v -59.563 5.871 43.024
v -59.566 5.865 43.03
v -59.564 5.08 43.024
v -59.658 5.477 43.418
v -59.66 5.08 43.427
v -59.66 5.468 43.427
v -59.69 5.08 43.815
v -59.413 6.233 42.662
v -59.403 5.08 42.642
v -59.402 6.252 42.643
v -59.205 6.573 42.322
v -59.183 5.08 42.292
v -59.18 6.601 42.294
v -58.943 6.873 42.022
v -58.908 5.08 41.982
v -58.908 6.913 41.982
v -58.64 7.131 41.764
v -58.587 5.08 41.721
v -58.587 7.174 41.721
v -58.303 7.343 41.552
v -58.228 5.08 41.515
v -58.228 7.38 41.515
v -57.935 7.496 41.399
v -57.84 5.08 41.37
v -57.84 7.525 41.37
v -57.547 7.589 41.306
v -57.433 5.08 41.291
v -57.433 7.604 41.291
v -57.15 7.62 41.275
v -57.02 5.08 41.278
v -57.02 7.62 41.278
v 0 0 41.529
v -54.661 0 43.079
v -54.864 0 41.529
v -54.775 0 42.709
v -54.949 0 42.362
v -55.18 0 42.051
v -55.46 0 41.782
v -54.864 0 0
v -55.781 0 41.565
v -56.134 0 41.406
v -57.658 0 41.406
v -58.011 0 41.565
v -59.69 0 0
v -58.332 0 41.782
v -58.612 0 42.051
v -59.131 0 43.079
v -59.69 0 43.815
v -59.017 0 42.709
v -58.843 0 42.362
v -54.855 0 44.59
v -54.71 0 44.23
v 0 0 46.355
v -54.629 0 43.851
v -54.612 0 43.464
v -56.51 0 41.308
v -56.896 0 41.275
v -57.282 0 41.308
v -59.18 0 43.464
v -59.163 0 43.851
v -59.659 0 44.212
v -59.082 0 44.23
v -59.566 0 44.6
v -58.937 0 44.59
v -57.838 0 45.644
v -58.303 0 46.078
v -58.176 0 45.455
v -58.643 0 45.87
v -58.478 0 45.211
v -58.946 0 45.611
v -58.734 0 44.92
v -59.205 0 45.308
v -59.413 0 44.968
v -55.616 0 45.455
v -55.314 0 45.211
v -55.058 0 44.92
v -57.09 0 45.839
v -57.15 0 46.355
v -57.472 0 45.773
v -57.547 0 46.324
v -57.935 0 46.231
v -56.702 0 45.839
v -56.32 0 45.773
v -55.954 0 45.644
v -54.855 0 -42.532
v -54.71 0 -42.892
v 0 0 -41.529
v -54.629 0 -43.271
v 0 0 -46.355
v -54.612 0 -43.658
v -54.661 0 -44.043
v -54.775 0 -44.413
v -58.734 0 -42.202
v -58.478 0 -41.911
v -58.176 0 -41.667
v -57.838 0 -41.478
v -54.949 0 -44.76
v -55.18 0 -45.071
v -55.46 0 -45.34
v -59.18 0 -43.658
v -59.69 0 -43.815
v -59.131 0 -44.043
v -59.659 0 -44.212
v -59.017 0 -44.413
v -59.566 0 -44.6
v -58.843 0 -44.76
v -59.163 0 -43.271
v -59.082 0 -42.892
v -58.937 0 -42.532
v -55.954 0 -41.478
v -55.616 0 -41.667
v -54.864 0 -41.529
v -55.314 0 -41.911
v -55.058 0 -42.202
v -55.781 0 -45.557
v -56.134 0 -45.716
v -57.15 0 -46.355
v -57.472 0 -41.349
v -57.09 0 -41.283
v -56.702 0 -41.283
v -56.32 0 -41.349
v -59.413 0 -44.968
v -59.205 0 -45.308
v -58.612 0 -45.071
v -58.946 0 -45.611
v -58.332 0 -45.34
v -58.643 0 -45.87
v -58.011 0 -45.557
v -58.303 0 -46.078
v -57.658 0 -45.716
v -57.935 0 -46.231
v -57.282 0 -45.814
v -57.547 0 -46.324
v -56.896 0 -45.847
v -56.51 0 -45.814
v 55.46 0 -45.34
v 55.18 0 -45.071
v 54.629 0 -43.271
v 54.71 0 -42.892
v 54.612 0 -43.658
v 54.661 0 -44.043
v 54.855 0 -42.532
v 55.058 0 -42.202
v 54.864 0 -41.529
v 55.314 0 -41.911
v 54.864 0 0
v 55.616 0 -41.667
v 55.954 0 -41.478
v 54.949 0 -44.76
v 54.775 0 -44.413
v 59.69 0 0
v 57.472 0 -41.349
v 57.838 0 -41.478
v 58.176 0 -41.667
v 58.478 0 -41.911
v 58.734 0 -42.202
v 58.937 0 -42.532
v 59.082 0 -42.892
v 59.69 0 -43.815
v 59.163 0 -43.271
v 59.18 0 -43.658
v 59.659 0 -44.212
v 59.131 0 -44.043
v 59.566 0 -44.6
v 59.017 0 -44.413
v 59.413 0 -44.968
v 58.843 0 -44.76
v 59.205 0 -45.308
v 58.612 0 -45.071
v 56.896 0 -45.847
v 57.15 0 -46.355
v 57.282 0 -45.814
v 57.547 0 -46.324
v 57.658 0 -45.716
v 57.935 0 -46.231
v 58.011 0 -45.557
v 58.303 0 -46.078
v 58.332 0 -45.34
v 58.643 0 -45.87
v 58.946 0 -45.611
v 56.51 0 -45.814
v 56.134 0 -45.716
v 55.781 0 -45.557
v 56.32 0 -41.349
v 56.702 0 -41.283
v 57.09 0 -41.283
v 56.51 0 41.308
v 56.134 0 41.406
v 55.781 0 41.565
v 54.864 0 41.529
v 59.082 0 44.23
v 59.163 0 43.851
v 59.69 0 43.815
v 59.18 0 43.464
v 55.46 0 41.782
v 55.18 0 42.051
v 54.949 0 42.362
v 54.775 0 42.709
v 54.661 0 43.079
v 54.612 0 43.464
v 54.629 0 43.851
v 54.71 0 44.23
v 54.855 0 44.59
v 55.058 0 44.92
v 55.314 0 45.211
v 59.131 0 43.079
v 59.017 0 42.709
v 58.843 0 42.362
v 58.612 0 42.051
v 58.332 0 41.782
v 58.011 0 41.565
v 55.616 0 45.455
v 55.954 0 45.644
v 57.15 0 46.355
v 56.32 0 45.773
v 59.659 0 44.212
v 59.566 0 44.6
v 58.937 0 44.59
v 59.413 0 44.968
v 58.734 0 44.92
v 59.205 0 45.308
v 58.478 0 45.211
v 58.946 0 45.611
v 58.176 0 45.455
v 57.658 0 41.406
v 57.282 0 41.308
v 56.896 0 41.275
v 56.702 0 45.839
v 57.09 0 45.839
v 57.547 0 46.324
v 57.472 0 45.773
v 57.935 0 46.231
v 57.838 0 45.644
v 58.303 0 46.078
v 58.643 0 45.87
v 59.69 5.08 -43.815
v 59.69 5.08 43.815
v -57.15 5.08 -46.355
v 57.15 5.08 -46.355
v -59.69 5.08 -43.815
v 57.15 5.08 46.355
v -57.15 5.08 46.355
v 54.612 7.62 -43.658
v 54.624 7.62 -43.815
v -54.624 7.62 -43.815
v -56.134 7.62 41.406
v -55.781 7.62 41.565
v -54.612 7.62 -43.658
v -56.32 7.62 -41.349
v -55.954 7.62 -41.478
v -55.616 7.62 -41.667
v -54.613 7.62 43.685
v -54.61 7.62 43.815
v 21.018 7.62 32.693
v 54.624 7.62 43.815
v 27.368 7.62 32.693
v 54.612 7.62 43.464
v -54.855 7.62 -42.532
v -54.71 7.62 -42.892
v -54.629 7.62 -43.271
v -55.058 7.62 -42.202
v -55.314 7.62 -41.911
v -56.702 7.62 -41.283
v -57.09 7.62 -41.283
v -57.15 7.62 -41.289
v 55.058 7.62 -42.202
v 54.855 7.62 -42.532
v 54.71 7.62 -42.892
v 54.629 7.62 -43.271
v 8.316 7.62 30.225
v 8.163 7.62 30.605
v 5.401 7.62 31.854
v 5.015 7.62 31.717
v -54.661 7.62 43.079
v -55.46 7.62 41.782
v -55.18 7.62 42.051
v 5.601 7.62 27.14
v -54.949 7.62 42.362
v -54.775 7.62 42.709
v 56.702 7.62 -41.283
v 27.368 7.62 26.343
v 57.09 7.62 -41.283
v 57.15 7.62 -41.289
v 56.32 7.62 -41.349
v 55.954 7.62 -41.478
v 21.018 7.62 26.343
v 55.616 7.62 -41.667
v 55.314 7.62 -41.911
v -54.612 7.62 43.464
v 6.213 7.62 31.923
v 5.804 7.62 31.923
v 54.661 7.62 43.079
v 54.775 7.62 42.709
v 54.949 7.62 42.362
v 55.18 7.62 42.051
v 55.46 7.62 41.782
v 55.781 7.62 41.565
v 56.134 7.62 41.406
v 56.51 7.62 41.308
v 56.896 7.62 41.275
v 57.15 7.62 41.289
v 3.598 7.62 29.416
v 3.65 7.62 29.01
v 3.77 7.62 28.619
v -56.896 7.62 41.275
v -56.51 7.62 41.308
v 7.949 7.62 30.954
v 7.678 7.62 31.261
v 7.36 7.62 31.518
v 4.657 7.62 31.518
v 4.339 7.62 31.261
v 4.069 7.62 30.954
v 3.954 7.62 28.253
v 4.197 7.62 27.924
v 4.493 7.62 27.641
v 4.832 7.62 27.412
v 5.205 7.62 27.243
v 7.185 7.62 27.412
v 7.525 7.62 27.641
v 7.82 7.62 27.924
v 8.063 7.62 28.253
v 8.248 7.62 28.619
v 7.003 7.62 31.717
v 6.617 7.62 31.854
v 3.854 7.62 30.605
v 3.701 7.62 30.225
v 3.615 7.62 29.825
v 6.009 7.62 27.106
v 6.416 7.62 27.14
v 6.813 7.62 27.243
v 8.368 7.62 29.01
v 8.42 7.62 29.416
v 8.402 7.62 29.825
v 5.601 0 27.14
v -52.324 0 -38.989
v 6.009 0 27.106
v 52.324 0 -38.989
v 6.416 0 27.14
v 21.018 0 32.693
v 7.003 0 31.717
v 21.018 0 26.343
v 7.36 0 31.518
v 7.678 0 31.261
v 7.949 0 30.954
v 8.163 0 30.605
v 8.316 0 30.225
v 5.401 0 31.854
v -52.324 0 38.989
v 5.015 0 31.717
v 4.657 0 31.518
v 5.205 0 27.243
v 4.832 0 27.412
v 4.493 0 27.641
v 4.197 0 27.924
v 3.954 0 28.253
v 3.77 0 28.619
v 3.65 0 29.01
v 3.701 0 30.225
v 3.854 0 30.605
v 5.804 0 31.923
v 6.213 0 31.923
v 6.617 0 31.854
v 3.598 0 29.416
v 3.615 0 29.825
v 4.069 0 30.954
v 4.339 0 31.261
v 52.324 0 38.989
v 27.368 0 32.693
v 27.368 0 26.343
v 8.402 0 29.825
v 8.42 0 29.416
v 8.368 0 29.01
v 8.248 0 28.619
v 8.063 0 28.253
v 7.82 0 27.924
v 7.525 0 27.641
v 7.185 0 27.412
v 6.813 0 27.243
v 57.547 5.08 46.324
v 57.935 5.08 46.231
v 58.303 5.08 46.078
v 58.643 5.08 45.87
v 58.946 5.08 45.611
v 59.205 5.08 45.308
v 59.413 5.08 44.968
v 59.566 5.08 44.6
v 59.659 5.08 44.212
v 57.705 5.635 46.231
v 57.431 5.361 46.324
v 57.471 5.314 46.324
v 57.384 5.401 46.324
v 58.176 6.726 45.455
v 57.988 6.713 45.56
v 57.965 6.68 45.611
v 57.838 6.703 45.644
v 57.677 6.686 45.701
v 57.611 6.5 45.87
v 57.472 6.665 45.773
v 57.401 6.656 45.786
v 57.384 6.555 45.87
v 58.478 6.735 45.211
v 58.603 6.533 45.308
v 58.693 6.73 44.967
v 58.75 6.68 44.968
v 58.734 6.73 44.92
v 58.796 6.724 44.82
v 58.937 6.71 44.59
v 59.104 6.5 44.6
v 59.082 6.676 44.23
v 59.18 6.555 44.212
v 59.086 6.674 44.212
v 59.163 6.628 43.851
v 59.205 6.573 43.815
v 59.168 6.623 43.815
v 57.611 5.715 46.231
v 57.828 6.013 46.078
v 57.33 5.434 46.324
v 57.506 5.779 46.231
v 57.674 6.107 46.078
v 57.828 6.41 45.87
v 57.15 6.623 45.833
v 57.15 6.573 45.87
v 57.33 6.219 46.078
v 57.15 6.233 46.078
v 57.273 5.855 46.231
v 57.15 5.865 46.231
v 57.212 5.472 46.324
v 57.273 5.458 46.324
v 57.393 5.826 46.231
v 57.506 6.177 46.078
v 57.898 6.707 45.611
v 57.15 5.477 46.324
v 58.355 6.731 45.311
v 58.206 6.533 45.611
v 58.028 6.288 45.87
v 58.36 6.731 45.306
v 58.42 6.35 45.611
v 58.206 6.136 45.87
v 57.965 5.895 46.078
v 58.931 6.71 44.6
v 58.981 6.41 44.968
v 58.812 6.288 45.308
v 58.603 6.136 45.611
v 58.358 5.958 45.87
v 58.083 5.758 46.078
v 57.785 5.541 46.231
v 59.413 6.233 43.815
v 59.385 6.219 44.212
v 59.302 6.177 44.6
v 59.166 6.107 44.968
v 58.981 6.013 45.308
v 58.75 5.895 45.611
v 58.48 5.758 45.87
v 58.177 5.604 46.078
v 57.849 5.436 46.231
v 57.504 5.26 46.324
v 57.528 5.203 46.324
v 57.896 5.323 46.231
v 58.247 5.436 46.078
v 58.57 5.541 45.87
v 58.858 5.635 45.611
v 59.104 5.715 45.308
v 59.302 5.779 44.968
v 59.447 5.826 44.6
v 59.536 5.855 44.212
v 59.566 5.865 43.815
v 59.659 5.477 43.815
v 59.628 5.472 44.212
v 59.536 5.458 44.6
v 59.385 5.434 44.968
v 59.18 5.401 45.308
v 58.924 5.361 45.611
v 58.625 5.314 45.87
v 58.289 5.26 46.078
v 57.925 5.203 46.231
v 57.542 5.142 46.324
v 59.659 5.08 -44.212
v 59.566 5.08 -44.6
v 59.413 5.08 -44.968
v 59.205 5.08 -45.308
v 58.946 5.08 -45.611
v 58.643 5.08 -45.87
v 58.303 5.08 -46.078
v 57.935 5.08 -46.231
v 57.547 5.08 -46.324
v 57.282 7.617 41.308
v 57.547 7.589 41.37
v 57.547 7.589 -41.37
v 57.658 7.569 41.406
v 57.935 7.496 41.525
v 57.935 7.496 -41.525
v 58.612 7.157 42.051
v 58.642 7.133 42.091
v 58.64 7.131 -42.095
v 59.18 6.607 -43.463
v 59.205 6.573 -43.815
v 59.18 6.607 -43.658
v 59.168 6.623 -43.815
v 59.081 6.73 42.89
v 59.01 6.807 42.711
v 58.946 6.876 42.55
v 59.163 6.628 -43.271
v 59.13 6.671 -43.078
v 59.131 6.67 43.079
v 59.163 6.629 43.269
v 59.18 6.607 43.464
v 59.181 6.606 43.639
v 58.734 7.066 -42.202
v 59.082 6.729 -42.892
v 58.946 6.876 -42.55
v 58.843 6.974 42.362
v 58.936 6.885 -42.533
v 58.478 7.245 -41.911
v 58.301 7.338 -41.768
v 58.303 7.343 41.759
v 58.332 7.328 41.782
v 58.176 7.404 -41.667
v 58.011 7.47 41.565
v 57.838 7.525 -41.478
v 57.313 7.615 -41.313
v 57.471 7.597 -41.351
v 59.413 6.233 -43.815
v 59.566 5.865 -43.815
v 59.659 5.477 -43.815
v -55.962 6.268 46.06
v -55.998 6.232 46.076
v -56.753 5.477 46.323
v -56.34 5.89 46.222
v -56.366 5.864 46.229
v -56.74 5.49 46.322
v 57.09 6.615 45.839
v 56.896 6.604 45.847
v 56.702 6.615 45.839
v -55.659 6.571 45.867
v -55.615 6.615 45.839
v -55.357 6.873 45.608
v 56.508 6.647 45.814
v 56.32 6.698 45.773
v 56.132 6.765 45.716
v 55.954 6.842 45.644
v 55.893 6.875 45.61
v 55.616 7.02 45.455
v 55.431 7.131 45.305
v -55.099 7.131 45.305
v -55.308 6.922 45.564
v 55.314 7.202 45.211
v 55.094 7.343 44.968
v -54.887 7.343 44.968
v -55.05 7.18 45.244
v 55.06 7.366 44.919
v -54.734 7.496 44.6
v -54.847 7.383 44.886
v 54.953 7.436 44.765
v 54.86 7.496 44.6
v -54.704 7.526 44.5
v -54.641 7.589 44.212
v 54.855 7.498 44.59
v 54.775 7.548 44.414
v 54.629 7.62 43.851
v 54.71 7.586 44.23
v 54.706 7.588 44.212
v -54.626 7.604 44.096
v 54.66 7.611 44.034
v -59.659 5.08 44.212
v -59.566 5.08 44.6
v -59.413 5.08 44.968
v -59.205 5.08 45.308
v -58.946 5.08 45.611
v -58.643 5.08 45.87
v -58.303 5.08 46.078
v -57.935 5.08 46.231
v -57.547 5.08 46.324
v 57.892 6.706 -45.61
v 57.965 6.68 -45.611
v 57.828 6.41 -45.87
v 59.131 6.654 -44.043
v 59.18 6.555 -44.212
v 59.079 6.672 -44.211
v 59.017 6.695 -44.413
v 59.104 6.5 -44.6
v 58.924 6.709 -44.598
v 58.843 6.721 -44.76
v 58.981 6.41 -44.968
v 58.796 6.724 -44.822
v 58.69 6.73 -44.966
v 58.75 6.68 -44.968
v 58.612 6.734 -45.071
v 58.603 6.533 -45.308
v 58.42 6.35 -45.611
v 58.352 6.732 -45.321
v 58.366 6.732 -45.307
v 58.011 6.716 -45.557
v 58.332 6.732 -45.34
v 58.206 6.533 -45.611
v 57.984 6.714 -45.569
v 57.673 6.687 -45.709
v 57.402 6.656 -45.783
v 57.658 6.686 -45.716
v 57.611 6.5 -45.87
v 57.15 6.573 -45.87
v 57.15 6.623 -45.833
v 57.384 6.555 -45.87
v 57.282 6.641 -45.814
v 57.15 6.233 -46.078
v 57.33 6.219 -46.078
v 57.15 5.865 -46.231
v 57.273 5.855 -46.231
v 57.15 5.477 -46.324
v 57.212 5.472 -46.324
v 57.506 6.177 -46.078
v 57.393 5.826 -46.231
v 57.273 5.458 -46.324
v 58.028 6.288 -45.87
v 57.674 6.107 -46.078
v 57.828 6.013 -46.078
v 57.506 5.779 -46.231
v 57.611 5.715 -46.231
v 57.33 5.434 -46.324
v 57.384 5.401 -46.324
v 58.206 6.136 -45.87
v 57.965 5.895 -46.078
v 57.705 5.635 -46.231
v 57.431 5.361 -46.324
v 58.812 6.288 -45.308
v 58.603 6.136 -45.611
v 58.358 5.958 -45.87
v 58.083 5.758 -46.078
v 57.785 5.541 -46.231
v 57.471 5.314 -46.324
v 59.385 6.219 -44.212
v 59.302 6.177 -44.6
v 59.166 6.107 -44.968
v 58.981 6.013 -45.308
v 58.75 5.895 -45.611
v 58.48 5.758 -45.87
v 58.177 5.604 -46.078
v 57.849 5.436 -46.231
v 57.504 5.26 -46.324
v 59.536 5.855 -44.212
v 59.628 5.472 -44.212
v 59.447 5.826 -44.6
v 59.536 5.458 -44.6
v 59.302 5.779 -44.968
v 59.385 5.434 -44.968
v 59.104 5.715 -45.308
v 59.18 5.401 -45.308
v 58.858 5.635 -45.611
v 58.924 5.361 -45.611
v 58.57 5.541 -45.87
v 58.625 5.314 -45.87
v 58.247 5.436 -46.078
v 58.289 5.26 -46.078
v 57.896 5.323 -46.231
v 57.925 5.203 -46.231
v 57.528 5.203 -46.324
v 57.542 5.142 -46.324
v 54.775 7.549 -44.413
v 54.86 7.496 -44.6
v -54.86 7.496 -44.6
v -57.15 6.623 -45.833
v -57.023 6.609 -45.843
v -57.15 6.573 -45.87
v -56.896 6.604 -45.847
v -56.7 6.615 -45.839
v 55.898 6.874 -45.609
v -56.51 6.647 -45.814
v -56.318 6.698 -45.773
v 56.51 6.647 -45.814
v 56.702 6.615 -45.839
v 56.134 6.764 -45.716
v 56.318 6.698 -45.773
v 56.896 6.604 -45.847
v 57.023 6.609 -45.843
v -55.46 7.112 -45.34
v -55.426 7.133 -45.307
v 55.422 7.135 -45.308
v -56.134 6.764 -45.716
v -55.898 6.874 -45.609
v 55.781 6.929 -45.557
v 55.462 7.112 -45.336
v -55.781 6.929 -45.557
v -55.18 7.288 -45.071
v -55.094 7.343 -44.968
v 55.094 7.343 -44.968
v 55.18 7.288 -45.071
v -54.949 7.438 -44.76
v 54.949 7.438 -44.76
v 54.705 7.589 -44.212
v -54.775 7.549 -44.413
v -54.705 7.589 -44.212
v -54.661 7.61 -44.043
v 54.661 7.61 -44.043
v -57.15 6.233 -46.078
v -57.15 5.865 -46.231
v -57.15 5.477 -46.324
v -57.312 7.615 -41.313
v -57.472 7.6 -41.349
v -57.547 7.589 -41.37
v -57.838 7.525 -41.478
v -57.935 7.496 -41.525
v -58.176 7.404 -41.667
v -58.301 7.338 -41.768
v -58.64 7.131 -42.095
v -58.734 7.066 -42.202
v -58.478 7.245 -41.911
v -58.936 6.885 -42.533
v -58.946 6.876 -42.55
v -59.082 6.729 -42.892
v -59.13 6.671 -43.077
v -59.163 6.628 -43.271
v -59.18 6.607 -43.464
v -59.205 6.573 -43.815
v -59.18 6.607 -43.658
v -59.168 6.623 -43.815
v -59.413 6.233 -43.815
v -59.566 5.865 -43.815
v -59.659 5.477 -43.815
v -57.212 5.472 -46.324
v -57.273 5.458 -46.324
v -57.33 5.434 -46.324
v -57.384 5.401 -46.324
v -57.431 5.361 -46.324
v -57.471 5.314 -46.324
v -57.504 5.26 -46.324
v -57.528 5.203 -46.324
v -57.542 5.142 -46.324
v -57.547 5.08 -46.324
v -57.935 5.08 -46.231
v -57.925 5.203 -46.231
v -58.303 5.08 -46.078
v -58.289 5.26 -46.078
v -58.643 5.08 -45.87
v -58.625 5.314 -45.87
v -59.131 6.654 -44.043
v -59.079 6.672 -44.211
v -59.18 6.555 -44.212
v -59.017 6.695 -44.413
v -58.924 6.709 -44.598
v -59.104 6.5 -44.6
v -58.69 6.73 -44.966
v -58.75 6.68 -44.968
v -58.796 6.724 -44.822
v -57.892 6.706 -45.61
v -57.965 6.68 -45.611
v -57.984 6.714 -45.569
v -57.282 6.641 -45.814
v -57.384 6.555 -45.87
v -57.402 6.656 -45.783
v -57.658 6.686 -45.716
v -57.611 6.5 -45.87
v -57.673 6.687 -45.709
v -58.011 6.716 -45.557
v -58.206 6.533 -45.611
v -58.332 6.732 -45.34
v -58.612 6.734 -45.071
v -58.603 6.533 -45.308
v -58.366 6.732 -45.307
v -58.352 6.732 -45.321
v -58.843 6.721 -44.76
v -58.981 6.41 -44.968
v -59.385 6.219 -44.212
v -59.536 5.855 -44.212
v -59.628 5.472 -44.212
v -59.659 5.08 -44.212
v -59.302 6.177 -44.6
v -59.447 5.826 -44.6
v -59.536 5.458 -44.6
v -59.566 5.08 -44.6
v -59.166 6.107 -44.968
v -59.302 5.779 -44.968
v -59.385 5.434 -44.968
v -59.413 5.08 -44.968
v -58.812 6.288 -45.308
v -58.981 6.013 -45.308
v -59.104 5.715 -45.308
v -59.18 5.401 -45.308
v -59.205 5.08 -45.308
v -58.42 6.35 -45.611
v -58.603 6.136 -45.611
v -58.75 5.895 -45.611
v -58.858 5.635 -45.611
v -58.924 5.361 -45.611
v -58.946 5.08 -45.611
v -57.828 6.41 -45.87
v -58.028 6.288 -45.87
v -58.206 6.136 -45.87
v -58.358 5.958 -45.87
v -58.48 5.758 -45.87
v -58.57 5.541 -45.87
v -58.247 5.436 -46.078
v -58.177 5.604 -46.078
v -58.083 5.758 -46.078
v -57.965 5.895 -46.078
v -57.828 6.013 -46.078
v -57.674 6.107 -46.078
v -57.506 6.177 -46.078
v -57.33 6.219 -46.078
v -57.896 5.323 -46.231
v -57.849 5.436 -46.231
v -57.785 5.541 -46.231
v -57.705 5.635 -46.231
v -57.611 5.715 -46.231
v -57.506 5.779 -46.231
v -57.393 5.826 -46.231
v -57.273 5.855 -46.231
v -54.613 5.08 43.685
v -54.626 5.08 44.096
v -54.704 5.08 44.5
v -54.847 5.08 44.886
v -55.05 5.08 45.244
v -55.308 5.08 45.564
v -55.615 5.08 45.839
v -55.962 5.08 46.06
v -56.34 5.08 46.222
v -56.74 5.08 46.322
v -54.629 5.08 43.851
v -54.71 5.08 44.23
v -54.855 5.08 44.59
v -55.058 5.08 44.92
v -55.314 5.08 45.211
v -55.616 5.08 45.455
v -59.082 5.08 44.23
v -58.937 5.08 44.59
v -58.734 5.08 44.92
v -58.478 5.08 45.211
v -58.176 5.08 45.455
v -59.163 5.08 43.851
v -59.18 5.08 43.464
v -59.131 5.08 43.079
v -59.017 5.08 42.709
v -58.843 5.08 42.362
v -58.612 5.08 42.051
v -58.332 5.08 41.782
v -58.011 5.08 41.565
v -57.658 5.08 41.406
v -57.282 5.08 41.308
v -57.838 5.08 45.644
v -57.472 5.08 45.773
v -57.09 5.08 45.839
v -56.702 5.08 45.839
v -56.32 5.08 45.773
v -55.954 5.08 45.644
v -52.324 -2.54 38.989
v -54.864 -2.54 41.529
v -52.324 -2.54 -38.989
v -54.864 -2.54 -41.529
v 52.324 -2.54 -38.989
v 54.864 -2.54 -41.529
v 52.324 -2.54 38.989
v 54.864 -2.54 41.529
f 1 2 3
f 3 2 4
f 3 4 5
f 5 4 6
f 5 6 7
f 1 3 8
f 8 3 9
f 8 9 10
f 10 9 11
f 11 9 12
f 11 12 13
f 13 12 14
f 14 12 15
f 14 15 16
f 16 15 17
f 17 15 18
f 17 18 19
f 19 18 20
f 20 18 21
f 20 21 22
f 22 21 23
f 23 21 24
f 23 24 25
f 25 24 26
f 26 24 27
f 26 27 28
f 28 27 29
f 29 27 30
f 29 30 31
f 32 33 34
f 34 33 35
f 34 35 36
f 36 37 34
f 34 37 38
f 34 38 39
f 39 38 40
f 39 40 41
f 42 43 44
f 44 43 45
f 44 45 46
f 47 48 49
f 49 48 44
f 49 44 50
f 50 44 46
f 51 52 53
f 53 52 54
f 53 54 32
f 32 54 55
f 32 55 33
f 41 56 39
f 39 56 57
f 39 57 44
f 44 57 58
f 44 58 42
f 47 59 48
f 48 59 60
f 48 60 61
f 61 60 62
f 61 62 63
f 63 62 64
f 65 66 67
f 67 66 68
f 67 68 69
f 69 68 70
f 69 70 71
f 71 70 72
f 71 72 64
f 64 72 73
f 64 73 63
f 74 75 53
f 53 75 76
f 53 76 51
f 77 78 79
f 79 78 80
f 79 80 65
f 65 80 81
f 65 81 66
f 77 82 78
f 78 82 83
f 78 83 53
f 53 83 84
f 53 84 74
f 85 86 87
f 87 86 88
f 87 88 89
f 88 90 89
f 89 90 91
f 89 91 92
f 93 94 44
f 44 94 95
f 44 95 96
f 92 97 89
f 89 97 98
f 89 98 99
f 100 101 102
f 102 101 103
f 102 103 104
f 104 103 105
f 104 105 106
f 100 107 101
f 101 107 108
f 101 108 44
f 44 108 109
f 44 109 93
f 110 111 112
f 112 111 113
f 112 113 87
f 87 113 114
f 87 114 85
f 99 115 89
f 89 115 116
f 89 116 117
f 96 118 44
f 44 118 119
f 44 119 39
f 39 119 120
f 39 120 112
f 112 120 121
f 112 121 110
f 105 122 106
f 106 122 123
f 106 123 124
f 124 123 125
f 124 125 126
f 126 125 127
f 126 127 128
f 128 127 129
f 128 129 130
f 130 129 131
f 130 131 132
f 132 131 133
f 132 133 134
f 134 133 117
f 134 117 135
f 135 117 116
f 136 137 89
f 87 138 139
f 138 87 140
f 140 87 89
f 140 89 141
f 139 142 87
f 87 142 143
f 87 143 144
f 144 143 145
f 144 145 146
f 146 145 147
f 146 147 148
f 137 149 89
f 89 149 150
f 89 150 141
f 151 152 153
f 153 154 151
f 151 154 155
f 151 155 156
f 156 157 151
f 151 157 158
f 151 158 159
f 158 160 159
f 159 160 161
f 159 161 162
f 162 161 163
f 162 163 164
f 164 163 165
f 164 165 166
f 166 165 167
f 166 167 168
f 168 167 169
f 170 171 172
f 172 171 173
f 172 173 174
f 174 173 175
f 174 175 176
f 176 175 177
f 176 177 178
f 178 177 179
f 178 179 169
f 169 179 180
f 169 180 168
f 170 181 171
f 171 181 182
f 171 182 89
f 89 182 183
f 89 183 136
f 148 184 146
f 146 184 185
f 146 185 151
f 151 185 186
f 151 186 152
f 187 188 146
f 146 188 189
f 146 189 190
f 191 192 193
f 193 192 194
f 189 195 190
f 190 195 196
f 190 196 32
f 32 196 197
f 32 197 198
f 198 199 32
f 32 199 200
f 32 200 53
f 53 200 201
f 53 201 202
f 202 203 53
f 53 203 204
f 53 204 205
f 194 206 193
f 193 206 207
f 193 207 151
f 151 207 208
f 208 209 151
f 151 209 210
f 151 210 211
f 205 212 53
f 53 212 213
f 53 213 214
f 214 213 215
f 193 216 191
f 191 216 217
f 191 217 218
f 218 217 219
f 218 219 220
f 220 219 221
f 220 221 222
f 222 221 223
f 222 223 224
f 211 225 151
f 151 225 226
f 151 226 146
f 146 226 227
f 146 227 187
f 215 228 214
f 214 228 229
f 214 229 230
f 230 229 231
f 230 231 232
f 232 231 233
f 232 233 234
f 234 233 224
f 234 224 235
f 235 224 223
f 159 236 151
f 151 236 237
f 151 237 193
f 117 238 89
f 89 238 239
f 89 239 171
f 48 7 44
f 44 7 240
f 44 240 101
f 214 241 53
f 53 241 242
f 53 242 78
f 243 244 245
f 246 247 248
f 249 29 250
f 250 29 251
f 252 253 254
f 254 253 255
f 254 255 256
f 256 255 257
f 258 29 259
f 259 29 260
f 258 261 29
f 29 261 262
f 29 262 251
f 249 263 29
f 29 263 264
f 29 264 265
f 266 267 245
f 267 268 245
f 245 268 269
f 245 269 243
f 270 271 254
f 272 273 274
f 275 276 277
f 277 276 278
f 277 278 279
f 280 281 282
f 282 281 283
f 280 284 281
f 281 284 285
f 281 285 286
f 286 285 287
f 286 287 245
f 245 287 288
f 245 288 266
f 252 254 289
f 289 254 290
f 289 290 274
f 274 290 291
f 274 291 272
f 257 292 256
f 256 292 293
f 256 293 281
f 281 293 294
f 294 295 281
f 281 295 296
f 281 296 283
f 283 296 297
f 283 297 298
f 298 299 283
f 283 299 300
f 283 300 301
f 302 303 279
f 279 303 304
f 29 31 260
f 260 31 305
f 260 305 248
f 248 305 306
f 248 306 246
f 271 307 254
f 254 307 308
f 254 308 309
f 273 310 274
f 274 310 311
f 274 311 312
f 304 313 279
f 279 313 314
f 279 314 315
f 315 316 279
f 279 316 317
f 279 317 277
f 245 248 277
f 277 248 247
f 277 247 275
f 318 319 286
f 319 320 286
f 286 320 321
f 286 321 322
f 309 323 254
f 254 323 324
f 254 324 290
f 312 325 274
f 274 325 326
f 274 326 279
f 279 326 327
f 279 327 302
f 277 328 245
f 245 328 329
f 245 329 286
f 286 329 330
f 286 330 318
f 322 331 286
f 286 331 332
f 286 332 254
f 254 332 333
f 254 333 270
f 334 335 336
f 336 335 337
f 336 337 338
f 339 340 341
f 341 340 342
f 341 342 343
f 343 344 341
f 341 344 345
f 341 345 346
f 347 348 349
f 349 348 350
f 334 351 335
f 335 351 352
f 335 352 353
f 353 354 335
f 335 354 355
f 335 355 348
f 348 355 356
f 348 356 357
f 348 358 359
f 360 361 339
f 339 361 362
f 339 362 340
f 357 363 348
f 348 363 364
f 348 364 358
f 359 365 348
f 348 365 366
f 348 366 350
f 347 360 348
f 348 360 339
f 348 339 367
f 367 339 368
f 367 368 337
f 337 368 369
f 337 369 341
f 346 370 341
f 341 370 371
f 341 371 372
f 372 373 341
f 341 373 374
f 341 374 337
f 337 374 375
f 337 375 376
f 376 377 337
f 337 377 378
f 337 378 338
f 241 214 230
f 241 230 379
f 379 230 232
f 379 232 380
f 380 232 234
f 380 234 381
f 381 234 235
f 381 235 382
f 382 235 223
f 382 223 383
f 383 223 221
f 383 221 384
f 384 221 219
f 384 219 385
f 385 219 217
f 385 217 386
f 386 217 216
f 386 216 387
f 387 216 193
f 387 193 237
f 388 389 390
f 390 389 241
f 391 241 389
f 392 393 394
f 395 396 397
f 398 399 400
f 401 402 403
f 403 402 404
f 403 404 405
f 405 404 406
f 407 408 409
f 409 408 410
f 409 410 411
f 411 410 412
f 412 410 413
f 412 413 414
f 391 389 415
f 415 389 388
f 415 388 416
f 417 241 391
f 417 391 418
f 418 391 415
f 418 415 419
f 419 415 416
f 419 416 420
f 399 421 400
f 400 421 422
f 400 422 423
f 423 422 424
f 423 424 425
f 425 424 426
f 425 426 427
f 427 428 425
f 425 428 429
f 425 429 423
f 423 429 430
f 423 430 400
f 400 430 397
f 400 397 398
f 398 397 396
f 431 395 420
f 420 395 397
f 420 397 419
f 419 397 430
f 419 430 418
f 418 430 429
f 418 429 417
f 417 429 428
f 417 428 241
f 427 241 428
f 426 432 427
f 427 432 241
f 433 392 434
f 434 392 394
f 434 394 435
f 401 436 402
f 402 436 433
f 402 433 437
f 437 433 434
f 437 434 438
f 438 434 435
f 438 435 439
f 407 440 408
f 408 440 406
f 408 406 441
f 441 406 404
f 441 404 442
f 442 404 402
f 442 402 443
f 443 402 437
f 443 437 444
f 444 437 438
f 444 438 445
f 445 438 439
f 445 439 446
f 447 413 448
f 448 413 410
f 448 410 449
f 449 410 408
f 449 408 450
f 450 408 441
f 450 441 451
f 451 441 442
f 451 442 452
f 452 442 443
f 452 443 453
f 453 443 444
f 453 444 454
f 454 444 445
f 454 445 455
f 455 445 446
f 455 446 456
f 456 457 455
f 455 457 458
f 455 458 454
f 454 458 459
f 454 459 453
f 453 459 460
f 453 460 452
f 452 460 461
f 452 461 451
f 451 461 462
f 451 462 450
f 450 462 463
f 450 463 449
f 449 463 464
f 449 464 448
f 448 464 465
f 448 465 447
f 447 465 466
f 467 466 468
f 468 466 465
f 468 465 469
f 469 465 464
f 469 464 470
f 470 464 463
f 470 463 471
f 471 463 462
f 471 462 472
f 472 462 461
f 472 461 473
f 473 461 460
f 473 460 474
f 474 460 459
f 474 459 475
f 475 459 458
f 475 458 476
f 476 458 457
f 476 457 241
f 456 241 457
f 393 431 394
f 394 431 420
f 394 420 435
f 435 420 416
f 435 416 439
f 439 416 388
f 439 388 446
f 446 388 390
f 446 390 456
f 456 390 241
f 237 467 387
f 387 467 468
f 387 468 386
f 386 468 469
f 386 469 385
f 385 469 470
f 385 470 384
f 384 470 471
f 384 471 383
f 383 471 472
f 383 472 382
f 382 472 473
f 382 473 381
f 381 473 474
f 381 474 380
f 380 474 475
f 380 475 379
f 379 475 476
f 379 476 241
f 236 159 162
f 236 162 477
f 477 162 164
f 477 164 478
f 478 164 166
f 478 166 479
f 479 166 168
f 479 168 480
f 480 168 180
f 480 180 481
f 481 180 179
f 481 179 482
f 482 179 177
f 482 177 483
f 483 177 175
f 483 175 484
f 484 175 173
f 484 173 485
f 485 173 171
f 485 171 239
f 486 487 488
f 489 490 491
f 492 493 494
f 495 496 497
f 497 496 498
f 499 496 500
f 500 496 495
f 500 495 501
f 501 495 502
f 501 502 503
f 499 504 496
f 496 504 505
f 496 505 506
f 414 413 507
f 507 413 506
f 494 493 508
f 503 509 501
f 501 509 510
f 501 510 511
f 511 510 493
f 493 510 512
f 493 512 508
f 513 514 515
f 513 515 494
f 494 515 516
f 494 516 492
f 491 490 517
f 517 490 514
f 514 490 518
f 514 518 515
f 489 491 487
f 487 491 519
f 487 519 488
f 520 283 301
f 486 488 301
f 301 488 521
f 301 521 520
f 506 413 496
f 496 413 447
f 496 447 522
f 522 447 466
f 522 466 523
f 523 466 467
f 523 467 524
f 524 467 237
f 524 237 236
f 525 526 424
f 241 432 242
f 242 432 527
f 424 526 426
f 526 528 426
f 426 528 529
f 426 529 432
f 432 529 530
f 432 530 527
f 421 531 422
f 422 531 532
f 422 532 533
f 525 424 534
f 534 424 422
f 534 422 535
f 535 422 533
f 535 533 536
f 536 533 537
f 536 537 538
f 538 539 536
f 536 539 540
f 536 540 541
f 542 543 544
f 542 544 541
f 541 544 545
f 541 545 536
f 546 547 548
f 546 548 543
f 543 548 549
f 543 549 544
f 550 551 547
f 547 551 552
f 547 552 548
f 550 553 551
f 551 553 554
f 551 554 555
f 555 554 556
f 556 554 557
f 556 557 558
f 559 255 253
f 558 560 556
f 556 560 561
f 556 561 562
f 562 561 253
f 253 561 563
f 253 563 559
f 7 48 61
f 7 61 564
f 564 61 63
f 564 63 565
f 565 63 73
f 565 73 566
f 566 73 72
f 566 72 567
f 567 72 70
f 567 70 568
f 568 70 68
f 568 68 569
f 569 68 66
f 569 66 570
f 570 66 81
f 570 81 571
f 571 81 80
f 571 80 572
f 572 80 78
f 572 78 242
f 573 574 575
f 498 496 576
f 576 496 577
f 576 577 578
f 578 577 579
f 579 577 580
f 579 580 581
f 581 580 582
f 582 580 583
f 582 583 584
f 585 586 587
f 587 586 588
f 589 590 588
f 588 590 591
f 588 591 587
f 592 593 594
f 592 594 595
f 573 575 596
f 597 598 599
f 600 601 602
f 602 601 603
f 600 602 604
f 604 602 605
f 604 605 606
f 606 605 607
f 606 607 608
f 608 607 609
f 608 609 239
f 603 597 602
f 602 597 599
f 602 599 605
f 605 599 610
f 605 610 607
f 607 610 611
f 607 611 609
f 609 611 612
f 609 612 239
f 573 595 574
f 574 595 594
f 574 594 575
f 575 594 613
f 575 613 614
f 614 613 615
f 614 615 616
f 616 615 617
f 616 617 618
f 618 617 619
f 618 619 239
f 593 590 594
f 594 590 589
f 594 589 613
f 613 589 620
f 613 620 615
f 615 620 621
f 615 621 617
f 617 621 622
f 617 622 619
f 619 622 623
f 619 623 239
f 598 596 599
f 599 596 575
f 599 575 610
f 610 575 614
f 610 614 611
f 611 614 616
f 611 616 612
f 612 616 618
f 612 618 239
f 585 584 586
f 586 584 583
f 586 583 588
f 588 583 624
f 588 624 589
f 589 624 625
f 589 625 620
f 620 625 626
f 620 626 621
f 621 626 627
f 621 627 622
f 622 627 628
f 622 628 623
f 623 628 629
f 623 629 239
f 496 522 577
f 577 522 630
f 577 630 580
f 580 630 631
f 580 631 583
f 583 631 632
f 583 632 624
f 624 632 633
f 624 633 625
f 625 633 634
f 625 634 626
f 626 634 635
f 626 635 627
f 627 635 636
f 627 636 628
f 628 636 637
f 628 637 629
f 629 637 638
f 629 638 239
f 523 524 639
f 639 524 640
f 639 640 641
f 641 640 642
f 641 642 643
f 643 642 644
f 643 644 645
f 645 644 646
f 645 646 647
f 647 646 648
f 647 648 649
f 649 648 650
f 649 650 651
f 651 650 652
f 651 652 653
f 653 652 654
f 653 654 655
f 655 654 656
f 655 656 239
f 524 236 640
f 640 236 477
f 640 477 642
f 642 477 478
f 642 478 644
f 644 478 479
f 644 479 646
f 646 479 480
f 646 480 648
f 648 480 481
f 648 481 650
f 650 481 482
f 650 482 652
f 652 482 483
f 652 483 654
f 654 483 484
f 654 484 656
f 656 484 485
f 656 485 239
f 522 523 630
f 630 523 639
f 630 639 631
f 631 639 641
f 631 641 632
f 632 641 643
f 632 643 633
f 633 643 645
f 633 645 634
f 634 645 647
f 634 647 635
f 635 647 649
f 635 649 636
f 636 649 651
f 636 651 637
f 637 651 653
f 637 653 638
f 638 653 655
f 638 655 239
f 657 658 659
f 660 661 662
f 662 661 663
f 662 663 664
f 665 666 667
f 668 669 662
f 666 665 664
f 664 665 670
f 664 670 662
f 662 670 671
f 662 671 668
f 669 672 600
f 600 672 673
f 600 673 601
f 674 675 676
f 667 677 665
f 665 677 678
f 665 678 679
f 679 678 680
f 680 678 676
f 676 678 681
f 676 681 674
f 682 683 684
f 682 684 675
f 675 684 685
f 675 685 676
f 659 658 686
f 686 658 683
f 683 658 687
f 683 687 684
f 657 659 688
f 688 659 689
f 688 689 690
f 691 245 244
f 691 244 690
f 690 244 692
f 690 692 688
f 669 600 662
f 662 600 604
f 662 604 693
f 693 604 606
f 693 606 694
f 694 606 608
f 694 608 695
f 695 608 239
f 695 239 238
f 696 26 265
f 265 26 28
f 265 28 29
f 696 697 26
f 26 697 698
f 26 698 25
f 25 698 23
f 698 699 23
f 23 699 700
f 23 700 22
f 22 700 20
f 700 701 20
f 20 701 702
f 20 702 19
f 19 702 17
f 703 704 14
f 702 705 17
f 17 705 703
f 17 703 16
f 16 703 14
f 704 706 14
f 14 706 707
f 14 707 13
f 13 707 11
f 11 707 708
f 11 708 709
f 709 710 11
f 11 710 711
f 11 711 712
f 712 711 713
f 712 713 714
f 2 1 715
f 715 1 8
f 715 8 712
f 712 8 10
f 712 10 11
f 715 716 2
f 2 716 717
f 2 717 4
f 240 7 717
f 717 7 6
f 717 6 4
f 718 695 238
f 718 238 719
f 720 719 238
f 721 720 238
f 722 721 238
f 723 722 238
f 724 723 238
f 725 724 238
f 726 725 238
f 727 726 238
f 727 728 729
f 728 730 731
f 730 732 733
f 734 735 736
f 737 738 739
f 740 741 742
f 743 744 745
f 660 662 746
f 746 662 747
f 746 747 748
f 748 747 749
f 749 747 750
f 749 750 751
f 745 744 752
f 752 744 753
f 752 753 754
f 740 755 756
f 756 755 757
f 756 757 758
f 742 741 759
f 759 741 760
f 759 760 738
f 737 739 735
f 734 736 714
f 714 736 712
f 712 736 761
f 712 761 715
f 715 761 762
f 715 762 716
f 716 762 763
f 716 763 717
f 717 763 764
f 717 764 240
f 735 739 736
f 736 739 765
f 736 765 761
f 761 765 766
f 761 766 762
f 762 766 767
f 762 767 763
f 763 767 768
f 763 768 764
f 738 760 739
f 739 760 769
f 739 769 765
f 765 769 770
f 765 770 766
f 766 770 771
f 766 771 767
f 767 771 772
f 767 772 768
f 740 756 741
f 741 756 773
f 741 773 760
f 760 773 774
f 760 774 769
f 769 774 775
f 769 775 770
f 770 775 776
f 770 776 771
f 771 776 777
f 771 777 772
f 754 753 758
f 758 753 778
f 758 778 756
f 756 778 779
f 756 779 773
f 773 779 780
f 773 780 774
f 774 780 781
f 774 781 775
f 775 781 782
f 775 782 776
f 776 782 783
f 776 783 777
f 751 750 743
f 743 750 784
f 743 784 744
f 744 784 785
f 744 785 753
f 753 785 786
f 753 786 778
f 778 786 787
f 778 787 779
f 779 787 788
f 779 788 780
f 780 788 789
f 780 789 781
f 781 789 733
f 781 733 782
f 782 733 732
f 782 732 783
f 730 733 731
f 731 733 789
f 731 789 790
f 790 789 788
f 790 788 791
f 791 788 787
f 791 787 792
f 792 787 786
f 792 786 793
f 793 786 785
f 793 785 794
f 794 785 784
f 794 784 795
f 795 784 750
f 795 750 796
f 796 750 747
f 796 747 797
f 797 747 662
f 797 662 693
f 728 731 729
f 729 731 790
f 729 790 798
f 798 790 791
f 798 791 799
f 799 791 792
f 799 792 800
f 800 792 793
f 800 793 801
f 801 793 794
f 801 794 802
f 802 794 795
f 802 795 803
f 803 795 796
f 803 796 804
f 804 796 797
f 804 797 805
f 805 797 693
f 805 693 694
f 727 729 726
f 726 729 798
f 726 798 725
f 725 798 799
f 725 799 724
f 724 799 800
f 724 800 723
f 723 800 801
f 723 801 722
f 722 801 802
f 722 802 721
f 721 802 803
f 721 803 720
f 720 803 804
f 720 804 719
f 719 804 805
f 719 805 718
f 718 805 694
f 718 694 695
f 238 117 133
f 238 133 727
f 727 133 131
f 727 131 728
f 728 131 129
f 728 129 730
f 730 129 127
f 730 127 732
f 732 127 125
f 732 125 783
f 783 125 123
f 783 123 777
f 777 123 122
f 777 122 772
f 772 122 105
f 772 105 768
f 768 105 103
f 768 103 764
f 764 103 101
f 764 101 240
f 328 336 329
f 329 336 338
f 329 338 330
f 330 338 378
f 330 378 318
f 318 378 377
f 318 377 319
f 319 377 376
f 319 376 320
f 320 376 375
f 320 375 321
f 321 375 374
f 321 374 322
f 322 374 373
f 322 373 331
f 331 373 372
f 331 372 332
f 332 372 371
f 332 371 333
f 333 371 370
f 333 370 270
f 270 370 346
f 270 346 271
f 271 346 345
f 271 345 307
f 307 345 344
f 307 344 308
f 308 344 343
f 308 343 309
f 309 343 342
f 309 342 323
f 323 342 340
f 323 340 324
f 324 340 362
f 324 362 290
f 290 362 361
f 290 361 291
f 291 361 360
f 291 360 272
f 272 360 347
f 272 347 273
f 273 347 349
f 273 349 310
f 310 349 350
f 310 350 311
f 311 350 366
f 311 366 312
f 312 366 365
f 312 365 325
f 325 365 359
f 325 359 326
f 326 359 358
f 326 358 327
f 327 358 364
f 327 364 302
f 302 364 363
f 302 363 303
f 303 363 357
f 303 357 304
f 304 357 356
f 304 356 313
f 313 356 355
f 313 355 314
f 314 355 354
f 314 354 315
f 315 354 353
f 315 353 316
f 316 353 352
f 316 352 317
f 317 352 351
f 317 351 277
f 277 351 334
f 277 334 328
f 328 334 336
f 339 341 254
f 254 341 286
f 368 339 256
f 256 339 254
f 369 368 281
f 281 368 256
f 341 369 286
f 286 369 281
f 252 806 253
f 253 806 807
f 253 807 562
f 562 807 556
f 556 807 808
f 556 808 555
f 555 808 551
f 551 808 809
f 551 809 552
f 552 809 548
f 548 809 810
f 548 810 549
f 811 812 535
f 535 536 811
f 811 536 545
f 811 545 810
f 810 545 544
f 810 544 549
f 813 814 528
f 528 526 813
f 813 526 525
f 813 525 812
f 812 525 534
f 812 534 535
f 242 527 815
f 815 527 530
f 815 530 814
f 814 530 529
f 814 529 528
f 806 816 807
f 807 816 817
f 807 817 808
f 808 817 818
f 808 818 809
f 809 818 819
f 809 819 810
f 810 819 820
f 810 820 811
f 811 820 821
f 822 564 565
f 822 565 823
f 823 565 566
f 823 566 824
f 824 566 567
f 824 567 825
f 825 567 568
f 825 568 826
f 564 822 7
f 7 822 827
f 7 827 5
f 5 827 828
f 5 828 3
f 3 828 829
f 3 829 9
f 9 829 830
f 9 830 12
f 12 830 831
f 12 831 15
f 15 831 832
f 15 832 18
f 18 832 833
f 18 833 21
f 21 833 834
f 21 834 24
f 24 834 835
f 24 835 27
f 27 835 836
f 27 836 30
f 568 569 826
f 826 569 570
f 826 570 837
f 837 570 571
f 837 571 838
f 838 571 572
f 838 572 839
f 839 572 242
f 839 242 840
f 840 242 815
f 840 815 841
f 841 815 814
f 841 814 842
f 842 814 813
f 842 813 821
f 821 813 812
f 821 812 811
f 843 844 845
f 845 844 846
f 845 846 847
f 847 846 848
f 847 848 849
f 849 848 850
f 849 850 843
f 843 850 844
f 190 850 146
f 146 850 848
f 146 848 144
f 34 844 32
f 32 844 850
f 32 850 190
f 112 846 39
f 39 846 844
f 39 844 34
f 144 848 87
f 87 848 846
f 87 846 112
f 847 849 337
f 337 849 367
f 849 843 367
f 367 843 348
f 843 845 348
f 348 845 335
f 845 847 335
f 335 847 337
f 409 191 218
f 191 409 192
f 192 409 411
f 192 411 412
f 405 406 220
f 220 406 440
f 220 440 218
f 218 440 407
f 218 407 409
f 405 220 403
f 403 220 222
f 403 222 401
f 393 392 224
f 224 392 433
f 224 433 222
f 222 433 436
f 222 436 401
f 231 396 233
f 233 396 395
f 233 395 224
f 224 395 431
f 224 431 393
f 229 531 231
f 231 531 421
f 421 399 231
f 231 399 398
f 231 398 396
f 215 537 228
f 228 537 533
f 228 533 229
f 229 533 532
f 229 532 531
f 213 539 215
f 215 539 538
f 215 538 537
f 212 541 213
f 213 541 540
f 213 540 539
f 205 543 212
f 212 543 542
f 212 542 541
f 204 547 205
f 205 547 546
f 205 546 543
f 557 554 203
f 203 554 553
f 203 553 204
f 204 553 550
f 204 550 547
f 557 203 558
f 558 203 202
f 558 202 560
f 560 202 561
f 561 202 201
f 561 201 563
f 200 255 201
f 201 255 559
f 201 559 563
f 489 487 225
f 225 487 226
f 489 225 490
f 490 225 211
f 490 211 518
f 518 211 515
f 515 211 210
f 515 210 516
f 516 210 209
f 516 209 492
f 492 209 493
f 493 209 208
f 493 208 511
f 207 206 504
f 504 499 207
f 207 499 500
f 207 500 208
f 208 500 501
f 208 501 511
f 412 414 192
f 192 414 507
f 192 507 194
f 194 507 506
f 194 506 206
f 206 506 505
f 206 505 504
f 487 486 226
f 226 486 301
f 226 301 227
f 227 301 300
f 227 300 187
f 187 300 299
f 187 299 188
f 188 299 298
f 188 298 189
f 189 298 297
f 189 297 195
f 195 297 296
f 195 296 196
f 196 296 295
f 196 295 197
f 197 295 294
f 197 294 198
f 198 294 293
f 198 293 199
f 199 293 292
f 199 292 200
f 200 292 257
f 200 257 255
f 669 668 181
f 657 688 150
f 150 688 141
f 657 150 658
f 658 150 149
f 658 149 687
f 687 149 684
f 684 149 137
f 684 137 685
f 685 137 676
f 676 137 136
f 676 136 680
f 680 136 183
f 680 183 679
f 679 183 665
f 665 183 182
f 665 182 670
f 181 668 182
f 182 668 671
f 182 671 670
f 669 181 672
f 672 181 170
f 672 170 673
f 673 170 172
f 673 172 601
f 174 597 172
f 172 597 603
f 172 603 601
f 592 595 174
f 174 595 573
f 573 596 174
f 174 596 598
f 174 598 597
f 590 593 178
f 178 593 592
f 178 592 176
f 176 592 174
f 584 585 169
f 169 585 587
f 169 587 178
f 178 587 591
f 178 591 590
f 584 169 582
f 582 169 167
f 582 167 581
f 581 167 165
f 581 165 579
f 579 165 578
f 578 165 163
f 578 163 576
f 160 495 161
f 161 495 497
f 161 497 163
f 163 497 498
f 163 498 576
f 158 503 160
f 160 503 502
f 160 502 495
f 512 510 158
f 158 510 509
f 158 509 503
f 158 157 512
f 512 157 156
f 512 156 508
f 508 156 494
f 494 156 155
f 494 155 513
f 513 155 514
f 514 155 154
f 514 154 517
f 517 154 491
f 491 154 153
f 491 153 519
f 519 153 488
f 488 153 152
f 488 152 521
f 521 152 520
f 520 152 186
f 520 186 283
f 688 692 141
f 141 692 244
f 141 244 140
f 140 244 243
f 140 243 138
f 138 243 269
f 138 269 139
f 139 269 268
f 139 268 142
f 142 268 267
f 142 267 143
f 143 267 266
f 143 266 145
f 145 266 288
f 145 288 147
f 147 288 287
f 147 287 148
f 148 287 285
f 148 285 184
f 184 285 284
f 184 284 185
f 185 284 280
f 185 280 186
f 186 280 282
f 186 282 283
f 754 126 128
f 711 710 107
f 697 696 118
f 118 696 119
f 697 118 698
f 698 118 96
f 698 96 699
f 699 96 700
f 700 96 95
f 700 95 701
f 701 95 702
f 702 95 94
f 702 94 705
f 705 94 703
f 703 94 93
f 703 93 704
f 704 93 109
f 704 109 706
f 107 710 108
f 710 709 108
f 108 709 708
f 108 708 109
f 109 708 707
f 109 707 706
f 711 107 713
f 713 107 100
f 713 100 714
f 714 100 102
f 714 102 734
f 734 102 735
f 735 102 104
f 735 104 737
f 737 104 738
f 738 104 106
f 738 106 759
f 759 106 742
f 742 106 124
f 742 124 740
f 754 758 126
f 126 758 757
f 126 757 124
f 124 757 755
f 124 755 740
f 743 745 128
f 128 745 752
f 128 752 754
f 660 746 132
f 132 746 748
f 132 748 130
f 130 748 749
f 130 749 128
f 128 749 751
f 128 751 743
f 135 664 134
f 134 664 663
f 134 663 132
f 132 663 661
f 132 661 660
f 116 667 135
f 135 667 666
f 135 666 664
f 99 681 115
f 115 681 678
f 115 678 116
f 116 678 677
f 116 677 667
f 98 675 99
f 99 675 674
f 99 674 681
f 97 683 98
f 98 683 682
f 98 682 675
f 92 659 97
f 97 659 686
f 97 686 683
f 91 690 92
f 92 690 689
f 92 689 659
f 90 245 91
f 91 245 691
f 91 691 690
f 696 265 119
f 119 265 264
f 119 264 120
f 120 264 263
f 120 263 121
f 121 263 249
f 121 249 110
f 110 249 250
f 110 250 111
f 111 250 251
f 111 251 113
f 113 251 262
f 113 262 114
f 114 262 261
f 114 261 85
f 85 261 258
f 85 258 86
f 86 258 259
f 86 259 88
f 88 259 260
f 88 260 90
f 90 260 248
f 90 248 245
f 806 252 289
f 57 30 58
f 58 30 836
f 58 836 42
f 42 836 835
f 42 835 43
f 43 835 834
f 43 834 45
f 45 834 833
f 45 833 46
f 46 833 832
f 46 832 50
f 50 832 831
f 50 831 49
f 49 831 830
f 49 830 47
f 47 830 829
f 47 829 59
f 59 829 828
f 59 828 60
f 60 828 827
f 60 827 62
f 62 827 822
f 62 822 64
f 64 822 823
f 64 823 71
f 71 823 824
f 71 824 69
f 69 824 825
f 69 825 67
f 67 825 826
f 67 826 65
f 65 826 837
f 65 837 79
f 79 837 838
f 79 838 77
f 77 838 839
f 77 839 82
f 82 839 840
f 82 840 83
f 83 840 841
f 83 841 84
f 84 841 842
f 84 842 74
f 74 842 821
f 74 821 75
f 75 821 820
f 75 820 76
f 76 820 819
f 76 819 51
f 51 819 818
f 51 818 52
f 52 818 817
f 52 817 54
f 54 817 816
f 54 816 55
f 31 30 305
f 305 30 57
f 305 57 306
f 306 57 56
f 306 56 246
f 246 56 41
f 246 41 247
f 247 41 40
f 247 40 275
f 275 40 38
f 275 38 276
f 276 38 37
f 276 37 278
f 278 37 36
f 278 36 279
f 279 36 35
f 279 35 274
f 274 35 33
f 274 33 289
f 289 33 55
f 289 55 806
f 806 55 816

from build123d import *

# Parameters (mm, degrees)
SKETCH1_W           = 119.38
SKETCH1_H           = 92.71
BOSS_EXTRUDE1_DEPTH = 7.62
FILLET1_R           = 2.54
SKETCH3_R           = 2.413
CUT_EXTRUDE1_DEPTH  = 8.128
SKETCH4_W           = 6.35
SKETCH4_H           = 6.35
CUT_EXTRUDE2_DEPTH  = 7.62
SKETCH5_R           = 2.54
CUT_EXTRUDE3_DEPTH  = 2.54
SKETCH6_W           = 109.728
SKETCH6_H           = 83.058
SKETCH6_W_2         = 104.648
SKETCH6_H_2         = 77.978
BOSS_EXTRUDE2_DEPTH = 2.54
SKETCH8_R           = 2.286
CUT_EXTRUDE4_DEPTH  = 8.62
SKETCH9_R           = 2.286
CUT_EXTRUDE5_DEPTH  = 8.6200001
SKETCH11_R          = 2.286
CUT_EXTRUDE6_DEPTH  = 8.6200001
SKETCH12_R          = 2.286
CUT_EXTRUDE7_DEPTH  = 8.6200001


with BuildPart() as part:
    # Sketch1 → Boss-Extrude1 (new body)
    with BuildSketch(Plane(origin=(0, 0, 0), x_dir=(1, 0, 0), z_dir=(0, 1, 0))):
        Rectangle(SKETCH1_W, SKETCH1_H)
    extrude(amount=BOSS_EXTRUDE1_DEPTH)

    # Fillet1
    fillet1_edges = [part.edges().sort_by_distance(p)[0] for p in [
        (-59.69, 7.62, 0),
        (0, 7.62, 46.355),
        (59.69, 7.62, 0),
        (0, 7.62, -46.355),
        (59.69, 3.81, 46.355),
        (-59.69, 3.81, 46.355),
        (-59.69, 3.81, -46.355),
        (59.69, 3.81, -46.355),
    ]]
    fillet(fillet1_edges, radius=FILLET1_R)

    # Sketch3 → Cut-Extrude1 (cut)
    with BuildSketch(Plane.XZ):
        with Locations((6.008676456, 29.518648142)):
            Circle(SKETCH3_R)
    extrude(amount=-CUT_EXTRUDE1_DEPTH, mode=Mode.SUBTRACT)

    # Sketch4 → Cut-Extrude2 (cut)
    with BuildSketch(Plane.XZ):
        with Locations((24.193347407, 29.518339929)):
            Rectangle(SKETCH4_W, SKETCH4_H)
    extrude(amount=-CUT_EXTRUDE2_DEPTH, mode=Mode.SUBTRACT)

    # Sketch5 → Cut-Extrude3 (cut)
    with BuildSketch(Plane(origin=(0, 7.62, 0), x_dir=(1, 0, 0), z_dir=(0, 1, 0))):
        with Locations((-57.15, -43.815)):
            Circle(SKETCH5_R)
    extrude(amount=-CUT_EXTRUDE3_DEPTH, mode=Mode.SUBTRACT)

    # Sketch6 → Boss-Extrude2 (add)
    with BuildSketch(Plane(origin=(0, 0, 0), x_dir=(-1, 0, 0), z_dir=(0, -1, 0))):
        Rectangle(SKETCH6_W, SKETCH6_H)
        Rectangle(SKETCH6_W_2, SKETCH6_H_2, mode=Mode.SUBTRACT)
    extrude(amount=BOSS_EXTRUDE2_DEPTH)

    # Sketch8 → Cut-Extrude4 (cut, through all)
    with BuildSketch(Plane.XZ):
        with Locations((56.896, 43.561)):
            Circle(SKETCH8_R)
    extrude(amount=-CUT_EXTRUDE4_DEPTH, mode=Mode.SUBTRACT)

    # Sketch9 → Cut-Extrude5 (cut, through all)
    with BuildSketch(Plane(origin=(0, 0, 0), x_dir=(-1, 0, 0), z_dir=(0, -1, 0))):
        with Locations((-56.896, 43.561)):
            Circle(SKETCH9_R)
    extrude(amount=-CUT_EXTRUDE5_DEPTH, mode=Mode.SUBTRACT)

    # Sketch11 → Cut-Extrude6 (cut, through all)
    with BuildSketch(Plane.XZ):
        with Locations((-56.896, -43.561)):
            Circle(SKETCH11_R)
    extrude(amount=-CUT_EXTRUDE6_DEPTH, mode=Mode.SUBTRACT)

    # Sketch12 → Cut-Extrude7 (cut, through all)
    with BuildSketch(Plane.XZ):
        with Locations((-56.896, 43.561)):
            Circle(SKETCH12_R)
    extrude(amount=-CUT_EXTRUDE7_DEPTH, mode=Mode.SUBTRACT)


solid = part.part
